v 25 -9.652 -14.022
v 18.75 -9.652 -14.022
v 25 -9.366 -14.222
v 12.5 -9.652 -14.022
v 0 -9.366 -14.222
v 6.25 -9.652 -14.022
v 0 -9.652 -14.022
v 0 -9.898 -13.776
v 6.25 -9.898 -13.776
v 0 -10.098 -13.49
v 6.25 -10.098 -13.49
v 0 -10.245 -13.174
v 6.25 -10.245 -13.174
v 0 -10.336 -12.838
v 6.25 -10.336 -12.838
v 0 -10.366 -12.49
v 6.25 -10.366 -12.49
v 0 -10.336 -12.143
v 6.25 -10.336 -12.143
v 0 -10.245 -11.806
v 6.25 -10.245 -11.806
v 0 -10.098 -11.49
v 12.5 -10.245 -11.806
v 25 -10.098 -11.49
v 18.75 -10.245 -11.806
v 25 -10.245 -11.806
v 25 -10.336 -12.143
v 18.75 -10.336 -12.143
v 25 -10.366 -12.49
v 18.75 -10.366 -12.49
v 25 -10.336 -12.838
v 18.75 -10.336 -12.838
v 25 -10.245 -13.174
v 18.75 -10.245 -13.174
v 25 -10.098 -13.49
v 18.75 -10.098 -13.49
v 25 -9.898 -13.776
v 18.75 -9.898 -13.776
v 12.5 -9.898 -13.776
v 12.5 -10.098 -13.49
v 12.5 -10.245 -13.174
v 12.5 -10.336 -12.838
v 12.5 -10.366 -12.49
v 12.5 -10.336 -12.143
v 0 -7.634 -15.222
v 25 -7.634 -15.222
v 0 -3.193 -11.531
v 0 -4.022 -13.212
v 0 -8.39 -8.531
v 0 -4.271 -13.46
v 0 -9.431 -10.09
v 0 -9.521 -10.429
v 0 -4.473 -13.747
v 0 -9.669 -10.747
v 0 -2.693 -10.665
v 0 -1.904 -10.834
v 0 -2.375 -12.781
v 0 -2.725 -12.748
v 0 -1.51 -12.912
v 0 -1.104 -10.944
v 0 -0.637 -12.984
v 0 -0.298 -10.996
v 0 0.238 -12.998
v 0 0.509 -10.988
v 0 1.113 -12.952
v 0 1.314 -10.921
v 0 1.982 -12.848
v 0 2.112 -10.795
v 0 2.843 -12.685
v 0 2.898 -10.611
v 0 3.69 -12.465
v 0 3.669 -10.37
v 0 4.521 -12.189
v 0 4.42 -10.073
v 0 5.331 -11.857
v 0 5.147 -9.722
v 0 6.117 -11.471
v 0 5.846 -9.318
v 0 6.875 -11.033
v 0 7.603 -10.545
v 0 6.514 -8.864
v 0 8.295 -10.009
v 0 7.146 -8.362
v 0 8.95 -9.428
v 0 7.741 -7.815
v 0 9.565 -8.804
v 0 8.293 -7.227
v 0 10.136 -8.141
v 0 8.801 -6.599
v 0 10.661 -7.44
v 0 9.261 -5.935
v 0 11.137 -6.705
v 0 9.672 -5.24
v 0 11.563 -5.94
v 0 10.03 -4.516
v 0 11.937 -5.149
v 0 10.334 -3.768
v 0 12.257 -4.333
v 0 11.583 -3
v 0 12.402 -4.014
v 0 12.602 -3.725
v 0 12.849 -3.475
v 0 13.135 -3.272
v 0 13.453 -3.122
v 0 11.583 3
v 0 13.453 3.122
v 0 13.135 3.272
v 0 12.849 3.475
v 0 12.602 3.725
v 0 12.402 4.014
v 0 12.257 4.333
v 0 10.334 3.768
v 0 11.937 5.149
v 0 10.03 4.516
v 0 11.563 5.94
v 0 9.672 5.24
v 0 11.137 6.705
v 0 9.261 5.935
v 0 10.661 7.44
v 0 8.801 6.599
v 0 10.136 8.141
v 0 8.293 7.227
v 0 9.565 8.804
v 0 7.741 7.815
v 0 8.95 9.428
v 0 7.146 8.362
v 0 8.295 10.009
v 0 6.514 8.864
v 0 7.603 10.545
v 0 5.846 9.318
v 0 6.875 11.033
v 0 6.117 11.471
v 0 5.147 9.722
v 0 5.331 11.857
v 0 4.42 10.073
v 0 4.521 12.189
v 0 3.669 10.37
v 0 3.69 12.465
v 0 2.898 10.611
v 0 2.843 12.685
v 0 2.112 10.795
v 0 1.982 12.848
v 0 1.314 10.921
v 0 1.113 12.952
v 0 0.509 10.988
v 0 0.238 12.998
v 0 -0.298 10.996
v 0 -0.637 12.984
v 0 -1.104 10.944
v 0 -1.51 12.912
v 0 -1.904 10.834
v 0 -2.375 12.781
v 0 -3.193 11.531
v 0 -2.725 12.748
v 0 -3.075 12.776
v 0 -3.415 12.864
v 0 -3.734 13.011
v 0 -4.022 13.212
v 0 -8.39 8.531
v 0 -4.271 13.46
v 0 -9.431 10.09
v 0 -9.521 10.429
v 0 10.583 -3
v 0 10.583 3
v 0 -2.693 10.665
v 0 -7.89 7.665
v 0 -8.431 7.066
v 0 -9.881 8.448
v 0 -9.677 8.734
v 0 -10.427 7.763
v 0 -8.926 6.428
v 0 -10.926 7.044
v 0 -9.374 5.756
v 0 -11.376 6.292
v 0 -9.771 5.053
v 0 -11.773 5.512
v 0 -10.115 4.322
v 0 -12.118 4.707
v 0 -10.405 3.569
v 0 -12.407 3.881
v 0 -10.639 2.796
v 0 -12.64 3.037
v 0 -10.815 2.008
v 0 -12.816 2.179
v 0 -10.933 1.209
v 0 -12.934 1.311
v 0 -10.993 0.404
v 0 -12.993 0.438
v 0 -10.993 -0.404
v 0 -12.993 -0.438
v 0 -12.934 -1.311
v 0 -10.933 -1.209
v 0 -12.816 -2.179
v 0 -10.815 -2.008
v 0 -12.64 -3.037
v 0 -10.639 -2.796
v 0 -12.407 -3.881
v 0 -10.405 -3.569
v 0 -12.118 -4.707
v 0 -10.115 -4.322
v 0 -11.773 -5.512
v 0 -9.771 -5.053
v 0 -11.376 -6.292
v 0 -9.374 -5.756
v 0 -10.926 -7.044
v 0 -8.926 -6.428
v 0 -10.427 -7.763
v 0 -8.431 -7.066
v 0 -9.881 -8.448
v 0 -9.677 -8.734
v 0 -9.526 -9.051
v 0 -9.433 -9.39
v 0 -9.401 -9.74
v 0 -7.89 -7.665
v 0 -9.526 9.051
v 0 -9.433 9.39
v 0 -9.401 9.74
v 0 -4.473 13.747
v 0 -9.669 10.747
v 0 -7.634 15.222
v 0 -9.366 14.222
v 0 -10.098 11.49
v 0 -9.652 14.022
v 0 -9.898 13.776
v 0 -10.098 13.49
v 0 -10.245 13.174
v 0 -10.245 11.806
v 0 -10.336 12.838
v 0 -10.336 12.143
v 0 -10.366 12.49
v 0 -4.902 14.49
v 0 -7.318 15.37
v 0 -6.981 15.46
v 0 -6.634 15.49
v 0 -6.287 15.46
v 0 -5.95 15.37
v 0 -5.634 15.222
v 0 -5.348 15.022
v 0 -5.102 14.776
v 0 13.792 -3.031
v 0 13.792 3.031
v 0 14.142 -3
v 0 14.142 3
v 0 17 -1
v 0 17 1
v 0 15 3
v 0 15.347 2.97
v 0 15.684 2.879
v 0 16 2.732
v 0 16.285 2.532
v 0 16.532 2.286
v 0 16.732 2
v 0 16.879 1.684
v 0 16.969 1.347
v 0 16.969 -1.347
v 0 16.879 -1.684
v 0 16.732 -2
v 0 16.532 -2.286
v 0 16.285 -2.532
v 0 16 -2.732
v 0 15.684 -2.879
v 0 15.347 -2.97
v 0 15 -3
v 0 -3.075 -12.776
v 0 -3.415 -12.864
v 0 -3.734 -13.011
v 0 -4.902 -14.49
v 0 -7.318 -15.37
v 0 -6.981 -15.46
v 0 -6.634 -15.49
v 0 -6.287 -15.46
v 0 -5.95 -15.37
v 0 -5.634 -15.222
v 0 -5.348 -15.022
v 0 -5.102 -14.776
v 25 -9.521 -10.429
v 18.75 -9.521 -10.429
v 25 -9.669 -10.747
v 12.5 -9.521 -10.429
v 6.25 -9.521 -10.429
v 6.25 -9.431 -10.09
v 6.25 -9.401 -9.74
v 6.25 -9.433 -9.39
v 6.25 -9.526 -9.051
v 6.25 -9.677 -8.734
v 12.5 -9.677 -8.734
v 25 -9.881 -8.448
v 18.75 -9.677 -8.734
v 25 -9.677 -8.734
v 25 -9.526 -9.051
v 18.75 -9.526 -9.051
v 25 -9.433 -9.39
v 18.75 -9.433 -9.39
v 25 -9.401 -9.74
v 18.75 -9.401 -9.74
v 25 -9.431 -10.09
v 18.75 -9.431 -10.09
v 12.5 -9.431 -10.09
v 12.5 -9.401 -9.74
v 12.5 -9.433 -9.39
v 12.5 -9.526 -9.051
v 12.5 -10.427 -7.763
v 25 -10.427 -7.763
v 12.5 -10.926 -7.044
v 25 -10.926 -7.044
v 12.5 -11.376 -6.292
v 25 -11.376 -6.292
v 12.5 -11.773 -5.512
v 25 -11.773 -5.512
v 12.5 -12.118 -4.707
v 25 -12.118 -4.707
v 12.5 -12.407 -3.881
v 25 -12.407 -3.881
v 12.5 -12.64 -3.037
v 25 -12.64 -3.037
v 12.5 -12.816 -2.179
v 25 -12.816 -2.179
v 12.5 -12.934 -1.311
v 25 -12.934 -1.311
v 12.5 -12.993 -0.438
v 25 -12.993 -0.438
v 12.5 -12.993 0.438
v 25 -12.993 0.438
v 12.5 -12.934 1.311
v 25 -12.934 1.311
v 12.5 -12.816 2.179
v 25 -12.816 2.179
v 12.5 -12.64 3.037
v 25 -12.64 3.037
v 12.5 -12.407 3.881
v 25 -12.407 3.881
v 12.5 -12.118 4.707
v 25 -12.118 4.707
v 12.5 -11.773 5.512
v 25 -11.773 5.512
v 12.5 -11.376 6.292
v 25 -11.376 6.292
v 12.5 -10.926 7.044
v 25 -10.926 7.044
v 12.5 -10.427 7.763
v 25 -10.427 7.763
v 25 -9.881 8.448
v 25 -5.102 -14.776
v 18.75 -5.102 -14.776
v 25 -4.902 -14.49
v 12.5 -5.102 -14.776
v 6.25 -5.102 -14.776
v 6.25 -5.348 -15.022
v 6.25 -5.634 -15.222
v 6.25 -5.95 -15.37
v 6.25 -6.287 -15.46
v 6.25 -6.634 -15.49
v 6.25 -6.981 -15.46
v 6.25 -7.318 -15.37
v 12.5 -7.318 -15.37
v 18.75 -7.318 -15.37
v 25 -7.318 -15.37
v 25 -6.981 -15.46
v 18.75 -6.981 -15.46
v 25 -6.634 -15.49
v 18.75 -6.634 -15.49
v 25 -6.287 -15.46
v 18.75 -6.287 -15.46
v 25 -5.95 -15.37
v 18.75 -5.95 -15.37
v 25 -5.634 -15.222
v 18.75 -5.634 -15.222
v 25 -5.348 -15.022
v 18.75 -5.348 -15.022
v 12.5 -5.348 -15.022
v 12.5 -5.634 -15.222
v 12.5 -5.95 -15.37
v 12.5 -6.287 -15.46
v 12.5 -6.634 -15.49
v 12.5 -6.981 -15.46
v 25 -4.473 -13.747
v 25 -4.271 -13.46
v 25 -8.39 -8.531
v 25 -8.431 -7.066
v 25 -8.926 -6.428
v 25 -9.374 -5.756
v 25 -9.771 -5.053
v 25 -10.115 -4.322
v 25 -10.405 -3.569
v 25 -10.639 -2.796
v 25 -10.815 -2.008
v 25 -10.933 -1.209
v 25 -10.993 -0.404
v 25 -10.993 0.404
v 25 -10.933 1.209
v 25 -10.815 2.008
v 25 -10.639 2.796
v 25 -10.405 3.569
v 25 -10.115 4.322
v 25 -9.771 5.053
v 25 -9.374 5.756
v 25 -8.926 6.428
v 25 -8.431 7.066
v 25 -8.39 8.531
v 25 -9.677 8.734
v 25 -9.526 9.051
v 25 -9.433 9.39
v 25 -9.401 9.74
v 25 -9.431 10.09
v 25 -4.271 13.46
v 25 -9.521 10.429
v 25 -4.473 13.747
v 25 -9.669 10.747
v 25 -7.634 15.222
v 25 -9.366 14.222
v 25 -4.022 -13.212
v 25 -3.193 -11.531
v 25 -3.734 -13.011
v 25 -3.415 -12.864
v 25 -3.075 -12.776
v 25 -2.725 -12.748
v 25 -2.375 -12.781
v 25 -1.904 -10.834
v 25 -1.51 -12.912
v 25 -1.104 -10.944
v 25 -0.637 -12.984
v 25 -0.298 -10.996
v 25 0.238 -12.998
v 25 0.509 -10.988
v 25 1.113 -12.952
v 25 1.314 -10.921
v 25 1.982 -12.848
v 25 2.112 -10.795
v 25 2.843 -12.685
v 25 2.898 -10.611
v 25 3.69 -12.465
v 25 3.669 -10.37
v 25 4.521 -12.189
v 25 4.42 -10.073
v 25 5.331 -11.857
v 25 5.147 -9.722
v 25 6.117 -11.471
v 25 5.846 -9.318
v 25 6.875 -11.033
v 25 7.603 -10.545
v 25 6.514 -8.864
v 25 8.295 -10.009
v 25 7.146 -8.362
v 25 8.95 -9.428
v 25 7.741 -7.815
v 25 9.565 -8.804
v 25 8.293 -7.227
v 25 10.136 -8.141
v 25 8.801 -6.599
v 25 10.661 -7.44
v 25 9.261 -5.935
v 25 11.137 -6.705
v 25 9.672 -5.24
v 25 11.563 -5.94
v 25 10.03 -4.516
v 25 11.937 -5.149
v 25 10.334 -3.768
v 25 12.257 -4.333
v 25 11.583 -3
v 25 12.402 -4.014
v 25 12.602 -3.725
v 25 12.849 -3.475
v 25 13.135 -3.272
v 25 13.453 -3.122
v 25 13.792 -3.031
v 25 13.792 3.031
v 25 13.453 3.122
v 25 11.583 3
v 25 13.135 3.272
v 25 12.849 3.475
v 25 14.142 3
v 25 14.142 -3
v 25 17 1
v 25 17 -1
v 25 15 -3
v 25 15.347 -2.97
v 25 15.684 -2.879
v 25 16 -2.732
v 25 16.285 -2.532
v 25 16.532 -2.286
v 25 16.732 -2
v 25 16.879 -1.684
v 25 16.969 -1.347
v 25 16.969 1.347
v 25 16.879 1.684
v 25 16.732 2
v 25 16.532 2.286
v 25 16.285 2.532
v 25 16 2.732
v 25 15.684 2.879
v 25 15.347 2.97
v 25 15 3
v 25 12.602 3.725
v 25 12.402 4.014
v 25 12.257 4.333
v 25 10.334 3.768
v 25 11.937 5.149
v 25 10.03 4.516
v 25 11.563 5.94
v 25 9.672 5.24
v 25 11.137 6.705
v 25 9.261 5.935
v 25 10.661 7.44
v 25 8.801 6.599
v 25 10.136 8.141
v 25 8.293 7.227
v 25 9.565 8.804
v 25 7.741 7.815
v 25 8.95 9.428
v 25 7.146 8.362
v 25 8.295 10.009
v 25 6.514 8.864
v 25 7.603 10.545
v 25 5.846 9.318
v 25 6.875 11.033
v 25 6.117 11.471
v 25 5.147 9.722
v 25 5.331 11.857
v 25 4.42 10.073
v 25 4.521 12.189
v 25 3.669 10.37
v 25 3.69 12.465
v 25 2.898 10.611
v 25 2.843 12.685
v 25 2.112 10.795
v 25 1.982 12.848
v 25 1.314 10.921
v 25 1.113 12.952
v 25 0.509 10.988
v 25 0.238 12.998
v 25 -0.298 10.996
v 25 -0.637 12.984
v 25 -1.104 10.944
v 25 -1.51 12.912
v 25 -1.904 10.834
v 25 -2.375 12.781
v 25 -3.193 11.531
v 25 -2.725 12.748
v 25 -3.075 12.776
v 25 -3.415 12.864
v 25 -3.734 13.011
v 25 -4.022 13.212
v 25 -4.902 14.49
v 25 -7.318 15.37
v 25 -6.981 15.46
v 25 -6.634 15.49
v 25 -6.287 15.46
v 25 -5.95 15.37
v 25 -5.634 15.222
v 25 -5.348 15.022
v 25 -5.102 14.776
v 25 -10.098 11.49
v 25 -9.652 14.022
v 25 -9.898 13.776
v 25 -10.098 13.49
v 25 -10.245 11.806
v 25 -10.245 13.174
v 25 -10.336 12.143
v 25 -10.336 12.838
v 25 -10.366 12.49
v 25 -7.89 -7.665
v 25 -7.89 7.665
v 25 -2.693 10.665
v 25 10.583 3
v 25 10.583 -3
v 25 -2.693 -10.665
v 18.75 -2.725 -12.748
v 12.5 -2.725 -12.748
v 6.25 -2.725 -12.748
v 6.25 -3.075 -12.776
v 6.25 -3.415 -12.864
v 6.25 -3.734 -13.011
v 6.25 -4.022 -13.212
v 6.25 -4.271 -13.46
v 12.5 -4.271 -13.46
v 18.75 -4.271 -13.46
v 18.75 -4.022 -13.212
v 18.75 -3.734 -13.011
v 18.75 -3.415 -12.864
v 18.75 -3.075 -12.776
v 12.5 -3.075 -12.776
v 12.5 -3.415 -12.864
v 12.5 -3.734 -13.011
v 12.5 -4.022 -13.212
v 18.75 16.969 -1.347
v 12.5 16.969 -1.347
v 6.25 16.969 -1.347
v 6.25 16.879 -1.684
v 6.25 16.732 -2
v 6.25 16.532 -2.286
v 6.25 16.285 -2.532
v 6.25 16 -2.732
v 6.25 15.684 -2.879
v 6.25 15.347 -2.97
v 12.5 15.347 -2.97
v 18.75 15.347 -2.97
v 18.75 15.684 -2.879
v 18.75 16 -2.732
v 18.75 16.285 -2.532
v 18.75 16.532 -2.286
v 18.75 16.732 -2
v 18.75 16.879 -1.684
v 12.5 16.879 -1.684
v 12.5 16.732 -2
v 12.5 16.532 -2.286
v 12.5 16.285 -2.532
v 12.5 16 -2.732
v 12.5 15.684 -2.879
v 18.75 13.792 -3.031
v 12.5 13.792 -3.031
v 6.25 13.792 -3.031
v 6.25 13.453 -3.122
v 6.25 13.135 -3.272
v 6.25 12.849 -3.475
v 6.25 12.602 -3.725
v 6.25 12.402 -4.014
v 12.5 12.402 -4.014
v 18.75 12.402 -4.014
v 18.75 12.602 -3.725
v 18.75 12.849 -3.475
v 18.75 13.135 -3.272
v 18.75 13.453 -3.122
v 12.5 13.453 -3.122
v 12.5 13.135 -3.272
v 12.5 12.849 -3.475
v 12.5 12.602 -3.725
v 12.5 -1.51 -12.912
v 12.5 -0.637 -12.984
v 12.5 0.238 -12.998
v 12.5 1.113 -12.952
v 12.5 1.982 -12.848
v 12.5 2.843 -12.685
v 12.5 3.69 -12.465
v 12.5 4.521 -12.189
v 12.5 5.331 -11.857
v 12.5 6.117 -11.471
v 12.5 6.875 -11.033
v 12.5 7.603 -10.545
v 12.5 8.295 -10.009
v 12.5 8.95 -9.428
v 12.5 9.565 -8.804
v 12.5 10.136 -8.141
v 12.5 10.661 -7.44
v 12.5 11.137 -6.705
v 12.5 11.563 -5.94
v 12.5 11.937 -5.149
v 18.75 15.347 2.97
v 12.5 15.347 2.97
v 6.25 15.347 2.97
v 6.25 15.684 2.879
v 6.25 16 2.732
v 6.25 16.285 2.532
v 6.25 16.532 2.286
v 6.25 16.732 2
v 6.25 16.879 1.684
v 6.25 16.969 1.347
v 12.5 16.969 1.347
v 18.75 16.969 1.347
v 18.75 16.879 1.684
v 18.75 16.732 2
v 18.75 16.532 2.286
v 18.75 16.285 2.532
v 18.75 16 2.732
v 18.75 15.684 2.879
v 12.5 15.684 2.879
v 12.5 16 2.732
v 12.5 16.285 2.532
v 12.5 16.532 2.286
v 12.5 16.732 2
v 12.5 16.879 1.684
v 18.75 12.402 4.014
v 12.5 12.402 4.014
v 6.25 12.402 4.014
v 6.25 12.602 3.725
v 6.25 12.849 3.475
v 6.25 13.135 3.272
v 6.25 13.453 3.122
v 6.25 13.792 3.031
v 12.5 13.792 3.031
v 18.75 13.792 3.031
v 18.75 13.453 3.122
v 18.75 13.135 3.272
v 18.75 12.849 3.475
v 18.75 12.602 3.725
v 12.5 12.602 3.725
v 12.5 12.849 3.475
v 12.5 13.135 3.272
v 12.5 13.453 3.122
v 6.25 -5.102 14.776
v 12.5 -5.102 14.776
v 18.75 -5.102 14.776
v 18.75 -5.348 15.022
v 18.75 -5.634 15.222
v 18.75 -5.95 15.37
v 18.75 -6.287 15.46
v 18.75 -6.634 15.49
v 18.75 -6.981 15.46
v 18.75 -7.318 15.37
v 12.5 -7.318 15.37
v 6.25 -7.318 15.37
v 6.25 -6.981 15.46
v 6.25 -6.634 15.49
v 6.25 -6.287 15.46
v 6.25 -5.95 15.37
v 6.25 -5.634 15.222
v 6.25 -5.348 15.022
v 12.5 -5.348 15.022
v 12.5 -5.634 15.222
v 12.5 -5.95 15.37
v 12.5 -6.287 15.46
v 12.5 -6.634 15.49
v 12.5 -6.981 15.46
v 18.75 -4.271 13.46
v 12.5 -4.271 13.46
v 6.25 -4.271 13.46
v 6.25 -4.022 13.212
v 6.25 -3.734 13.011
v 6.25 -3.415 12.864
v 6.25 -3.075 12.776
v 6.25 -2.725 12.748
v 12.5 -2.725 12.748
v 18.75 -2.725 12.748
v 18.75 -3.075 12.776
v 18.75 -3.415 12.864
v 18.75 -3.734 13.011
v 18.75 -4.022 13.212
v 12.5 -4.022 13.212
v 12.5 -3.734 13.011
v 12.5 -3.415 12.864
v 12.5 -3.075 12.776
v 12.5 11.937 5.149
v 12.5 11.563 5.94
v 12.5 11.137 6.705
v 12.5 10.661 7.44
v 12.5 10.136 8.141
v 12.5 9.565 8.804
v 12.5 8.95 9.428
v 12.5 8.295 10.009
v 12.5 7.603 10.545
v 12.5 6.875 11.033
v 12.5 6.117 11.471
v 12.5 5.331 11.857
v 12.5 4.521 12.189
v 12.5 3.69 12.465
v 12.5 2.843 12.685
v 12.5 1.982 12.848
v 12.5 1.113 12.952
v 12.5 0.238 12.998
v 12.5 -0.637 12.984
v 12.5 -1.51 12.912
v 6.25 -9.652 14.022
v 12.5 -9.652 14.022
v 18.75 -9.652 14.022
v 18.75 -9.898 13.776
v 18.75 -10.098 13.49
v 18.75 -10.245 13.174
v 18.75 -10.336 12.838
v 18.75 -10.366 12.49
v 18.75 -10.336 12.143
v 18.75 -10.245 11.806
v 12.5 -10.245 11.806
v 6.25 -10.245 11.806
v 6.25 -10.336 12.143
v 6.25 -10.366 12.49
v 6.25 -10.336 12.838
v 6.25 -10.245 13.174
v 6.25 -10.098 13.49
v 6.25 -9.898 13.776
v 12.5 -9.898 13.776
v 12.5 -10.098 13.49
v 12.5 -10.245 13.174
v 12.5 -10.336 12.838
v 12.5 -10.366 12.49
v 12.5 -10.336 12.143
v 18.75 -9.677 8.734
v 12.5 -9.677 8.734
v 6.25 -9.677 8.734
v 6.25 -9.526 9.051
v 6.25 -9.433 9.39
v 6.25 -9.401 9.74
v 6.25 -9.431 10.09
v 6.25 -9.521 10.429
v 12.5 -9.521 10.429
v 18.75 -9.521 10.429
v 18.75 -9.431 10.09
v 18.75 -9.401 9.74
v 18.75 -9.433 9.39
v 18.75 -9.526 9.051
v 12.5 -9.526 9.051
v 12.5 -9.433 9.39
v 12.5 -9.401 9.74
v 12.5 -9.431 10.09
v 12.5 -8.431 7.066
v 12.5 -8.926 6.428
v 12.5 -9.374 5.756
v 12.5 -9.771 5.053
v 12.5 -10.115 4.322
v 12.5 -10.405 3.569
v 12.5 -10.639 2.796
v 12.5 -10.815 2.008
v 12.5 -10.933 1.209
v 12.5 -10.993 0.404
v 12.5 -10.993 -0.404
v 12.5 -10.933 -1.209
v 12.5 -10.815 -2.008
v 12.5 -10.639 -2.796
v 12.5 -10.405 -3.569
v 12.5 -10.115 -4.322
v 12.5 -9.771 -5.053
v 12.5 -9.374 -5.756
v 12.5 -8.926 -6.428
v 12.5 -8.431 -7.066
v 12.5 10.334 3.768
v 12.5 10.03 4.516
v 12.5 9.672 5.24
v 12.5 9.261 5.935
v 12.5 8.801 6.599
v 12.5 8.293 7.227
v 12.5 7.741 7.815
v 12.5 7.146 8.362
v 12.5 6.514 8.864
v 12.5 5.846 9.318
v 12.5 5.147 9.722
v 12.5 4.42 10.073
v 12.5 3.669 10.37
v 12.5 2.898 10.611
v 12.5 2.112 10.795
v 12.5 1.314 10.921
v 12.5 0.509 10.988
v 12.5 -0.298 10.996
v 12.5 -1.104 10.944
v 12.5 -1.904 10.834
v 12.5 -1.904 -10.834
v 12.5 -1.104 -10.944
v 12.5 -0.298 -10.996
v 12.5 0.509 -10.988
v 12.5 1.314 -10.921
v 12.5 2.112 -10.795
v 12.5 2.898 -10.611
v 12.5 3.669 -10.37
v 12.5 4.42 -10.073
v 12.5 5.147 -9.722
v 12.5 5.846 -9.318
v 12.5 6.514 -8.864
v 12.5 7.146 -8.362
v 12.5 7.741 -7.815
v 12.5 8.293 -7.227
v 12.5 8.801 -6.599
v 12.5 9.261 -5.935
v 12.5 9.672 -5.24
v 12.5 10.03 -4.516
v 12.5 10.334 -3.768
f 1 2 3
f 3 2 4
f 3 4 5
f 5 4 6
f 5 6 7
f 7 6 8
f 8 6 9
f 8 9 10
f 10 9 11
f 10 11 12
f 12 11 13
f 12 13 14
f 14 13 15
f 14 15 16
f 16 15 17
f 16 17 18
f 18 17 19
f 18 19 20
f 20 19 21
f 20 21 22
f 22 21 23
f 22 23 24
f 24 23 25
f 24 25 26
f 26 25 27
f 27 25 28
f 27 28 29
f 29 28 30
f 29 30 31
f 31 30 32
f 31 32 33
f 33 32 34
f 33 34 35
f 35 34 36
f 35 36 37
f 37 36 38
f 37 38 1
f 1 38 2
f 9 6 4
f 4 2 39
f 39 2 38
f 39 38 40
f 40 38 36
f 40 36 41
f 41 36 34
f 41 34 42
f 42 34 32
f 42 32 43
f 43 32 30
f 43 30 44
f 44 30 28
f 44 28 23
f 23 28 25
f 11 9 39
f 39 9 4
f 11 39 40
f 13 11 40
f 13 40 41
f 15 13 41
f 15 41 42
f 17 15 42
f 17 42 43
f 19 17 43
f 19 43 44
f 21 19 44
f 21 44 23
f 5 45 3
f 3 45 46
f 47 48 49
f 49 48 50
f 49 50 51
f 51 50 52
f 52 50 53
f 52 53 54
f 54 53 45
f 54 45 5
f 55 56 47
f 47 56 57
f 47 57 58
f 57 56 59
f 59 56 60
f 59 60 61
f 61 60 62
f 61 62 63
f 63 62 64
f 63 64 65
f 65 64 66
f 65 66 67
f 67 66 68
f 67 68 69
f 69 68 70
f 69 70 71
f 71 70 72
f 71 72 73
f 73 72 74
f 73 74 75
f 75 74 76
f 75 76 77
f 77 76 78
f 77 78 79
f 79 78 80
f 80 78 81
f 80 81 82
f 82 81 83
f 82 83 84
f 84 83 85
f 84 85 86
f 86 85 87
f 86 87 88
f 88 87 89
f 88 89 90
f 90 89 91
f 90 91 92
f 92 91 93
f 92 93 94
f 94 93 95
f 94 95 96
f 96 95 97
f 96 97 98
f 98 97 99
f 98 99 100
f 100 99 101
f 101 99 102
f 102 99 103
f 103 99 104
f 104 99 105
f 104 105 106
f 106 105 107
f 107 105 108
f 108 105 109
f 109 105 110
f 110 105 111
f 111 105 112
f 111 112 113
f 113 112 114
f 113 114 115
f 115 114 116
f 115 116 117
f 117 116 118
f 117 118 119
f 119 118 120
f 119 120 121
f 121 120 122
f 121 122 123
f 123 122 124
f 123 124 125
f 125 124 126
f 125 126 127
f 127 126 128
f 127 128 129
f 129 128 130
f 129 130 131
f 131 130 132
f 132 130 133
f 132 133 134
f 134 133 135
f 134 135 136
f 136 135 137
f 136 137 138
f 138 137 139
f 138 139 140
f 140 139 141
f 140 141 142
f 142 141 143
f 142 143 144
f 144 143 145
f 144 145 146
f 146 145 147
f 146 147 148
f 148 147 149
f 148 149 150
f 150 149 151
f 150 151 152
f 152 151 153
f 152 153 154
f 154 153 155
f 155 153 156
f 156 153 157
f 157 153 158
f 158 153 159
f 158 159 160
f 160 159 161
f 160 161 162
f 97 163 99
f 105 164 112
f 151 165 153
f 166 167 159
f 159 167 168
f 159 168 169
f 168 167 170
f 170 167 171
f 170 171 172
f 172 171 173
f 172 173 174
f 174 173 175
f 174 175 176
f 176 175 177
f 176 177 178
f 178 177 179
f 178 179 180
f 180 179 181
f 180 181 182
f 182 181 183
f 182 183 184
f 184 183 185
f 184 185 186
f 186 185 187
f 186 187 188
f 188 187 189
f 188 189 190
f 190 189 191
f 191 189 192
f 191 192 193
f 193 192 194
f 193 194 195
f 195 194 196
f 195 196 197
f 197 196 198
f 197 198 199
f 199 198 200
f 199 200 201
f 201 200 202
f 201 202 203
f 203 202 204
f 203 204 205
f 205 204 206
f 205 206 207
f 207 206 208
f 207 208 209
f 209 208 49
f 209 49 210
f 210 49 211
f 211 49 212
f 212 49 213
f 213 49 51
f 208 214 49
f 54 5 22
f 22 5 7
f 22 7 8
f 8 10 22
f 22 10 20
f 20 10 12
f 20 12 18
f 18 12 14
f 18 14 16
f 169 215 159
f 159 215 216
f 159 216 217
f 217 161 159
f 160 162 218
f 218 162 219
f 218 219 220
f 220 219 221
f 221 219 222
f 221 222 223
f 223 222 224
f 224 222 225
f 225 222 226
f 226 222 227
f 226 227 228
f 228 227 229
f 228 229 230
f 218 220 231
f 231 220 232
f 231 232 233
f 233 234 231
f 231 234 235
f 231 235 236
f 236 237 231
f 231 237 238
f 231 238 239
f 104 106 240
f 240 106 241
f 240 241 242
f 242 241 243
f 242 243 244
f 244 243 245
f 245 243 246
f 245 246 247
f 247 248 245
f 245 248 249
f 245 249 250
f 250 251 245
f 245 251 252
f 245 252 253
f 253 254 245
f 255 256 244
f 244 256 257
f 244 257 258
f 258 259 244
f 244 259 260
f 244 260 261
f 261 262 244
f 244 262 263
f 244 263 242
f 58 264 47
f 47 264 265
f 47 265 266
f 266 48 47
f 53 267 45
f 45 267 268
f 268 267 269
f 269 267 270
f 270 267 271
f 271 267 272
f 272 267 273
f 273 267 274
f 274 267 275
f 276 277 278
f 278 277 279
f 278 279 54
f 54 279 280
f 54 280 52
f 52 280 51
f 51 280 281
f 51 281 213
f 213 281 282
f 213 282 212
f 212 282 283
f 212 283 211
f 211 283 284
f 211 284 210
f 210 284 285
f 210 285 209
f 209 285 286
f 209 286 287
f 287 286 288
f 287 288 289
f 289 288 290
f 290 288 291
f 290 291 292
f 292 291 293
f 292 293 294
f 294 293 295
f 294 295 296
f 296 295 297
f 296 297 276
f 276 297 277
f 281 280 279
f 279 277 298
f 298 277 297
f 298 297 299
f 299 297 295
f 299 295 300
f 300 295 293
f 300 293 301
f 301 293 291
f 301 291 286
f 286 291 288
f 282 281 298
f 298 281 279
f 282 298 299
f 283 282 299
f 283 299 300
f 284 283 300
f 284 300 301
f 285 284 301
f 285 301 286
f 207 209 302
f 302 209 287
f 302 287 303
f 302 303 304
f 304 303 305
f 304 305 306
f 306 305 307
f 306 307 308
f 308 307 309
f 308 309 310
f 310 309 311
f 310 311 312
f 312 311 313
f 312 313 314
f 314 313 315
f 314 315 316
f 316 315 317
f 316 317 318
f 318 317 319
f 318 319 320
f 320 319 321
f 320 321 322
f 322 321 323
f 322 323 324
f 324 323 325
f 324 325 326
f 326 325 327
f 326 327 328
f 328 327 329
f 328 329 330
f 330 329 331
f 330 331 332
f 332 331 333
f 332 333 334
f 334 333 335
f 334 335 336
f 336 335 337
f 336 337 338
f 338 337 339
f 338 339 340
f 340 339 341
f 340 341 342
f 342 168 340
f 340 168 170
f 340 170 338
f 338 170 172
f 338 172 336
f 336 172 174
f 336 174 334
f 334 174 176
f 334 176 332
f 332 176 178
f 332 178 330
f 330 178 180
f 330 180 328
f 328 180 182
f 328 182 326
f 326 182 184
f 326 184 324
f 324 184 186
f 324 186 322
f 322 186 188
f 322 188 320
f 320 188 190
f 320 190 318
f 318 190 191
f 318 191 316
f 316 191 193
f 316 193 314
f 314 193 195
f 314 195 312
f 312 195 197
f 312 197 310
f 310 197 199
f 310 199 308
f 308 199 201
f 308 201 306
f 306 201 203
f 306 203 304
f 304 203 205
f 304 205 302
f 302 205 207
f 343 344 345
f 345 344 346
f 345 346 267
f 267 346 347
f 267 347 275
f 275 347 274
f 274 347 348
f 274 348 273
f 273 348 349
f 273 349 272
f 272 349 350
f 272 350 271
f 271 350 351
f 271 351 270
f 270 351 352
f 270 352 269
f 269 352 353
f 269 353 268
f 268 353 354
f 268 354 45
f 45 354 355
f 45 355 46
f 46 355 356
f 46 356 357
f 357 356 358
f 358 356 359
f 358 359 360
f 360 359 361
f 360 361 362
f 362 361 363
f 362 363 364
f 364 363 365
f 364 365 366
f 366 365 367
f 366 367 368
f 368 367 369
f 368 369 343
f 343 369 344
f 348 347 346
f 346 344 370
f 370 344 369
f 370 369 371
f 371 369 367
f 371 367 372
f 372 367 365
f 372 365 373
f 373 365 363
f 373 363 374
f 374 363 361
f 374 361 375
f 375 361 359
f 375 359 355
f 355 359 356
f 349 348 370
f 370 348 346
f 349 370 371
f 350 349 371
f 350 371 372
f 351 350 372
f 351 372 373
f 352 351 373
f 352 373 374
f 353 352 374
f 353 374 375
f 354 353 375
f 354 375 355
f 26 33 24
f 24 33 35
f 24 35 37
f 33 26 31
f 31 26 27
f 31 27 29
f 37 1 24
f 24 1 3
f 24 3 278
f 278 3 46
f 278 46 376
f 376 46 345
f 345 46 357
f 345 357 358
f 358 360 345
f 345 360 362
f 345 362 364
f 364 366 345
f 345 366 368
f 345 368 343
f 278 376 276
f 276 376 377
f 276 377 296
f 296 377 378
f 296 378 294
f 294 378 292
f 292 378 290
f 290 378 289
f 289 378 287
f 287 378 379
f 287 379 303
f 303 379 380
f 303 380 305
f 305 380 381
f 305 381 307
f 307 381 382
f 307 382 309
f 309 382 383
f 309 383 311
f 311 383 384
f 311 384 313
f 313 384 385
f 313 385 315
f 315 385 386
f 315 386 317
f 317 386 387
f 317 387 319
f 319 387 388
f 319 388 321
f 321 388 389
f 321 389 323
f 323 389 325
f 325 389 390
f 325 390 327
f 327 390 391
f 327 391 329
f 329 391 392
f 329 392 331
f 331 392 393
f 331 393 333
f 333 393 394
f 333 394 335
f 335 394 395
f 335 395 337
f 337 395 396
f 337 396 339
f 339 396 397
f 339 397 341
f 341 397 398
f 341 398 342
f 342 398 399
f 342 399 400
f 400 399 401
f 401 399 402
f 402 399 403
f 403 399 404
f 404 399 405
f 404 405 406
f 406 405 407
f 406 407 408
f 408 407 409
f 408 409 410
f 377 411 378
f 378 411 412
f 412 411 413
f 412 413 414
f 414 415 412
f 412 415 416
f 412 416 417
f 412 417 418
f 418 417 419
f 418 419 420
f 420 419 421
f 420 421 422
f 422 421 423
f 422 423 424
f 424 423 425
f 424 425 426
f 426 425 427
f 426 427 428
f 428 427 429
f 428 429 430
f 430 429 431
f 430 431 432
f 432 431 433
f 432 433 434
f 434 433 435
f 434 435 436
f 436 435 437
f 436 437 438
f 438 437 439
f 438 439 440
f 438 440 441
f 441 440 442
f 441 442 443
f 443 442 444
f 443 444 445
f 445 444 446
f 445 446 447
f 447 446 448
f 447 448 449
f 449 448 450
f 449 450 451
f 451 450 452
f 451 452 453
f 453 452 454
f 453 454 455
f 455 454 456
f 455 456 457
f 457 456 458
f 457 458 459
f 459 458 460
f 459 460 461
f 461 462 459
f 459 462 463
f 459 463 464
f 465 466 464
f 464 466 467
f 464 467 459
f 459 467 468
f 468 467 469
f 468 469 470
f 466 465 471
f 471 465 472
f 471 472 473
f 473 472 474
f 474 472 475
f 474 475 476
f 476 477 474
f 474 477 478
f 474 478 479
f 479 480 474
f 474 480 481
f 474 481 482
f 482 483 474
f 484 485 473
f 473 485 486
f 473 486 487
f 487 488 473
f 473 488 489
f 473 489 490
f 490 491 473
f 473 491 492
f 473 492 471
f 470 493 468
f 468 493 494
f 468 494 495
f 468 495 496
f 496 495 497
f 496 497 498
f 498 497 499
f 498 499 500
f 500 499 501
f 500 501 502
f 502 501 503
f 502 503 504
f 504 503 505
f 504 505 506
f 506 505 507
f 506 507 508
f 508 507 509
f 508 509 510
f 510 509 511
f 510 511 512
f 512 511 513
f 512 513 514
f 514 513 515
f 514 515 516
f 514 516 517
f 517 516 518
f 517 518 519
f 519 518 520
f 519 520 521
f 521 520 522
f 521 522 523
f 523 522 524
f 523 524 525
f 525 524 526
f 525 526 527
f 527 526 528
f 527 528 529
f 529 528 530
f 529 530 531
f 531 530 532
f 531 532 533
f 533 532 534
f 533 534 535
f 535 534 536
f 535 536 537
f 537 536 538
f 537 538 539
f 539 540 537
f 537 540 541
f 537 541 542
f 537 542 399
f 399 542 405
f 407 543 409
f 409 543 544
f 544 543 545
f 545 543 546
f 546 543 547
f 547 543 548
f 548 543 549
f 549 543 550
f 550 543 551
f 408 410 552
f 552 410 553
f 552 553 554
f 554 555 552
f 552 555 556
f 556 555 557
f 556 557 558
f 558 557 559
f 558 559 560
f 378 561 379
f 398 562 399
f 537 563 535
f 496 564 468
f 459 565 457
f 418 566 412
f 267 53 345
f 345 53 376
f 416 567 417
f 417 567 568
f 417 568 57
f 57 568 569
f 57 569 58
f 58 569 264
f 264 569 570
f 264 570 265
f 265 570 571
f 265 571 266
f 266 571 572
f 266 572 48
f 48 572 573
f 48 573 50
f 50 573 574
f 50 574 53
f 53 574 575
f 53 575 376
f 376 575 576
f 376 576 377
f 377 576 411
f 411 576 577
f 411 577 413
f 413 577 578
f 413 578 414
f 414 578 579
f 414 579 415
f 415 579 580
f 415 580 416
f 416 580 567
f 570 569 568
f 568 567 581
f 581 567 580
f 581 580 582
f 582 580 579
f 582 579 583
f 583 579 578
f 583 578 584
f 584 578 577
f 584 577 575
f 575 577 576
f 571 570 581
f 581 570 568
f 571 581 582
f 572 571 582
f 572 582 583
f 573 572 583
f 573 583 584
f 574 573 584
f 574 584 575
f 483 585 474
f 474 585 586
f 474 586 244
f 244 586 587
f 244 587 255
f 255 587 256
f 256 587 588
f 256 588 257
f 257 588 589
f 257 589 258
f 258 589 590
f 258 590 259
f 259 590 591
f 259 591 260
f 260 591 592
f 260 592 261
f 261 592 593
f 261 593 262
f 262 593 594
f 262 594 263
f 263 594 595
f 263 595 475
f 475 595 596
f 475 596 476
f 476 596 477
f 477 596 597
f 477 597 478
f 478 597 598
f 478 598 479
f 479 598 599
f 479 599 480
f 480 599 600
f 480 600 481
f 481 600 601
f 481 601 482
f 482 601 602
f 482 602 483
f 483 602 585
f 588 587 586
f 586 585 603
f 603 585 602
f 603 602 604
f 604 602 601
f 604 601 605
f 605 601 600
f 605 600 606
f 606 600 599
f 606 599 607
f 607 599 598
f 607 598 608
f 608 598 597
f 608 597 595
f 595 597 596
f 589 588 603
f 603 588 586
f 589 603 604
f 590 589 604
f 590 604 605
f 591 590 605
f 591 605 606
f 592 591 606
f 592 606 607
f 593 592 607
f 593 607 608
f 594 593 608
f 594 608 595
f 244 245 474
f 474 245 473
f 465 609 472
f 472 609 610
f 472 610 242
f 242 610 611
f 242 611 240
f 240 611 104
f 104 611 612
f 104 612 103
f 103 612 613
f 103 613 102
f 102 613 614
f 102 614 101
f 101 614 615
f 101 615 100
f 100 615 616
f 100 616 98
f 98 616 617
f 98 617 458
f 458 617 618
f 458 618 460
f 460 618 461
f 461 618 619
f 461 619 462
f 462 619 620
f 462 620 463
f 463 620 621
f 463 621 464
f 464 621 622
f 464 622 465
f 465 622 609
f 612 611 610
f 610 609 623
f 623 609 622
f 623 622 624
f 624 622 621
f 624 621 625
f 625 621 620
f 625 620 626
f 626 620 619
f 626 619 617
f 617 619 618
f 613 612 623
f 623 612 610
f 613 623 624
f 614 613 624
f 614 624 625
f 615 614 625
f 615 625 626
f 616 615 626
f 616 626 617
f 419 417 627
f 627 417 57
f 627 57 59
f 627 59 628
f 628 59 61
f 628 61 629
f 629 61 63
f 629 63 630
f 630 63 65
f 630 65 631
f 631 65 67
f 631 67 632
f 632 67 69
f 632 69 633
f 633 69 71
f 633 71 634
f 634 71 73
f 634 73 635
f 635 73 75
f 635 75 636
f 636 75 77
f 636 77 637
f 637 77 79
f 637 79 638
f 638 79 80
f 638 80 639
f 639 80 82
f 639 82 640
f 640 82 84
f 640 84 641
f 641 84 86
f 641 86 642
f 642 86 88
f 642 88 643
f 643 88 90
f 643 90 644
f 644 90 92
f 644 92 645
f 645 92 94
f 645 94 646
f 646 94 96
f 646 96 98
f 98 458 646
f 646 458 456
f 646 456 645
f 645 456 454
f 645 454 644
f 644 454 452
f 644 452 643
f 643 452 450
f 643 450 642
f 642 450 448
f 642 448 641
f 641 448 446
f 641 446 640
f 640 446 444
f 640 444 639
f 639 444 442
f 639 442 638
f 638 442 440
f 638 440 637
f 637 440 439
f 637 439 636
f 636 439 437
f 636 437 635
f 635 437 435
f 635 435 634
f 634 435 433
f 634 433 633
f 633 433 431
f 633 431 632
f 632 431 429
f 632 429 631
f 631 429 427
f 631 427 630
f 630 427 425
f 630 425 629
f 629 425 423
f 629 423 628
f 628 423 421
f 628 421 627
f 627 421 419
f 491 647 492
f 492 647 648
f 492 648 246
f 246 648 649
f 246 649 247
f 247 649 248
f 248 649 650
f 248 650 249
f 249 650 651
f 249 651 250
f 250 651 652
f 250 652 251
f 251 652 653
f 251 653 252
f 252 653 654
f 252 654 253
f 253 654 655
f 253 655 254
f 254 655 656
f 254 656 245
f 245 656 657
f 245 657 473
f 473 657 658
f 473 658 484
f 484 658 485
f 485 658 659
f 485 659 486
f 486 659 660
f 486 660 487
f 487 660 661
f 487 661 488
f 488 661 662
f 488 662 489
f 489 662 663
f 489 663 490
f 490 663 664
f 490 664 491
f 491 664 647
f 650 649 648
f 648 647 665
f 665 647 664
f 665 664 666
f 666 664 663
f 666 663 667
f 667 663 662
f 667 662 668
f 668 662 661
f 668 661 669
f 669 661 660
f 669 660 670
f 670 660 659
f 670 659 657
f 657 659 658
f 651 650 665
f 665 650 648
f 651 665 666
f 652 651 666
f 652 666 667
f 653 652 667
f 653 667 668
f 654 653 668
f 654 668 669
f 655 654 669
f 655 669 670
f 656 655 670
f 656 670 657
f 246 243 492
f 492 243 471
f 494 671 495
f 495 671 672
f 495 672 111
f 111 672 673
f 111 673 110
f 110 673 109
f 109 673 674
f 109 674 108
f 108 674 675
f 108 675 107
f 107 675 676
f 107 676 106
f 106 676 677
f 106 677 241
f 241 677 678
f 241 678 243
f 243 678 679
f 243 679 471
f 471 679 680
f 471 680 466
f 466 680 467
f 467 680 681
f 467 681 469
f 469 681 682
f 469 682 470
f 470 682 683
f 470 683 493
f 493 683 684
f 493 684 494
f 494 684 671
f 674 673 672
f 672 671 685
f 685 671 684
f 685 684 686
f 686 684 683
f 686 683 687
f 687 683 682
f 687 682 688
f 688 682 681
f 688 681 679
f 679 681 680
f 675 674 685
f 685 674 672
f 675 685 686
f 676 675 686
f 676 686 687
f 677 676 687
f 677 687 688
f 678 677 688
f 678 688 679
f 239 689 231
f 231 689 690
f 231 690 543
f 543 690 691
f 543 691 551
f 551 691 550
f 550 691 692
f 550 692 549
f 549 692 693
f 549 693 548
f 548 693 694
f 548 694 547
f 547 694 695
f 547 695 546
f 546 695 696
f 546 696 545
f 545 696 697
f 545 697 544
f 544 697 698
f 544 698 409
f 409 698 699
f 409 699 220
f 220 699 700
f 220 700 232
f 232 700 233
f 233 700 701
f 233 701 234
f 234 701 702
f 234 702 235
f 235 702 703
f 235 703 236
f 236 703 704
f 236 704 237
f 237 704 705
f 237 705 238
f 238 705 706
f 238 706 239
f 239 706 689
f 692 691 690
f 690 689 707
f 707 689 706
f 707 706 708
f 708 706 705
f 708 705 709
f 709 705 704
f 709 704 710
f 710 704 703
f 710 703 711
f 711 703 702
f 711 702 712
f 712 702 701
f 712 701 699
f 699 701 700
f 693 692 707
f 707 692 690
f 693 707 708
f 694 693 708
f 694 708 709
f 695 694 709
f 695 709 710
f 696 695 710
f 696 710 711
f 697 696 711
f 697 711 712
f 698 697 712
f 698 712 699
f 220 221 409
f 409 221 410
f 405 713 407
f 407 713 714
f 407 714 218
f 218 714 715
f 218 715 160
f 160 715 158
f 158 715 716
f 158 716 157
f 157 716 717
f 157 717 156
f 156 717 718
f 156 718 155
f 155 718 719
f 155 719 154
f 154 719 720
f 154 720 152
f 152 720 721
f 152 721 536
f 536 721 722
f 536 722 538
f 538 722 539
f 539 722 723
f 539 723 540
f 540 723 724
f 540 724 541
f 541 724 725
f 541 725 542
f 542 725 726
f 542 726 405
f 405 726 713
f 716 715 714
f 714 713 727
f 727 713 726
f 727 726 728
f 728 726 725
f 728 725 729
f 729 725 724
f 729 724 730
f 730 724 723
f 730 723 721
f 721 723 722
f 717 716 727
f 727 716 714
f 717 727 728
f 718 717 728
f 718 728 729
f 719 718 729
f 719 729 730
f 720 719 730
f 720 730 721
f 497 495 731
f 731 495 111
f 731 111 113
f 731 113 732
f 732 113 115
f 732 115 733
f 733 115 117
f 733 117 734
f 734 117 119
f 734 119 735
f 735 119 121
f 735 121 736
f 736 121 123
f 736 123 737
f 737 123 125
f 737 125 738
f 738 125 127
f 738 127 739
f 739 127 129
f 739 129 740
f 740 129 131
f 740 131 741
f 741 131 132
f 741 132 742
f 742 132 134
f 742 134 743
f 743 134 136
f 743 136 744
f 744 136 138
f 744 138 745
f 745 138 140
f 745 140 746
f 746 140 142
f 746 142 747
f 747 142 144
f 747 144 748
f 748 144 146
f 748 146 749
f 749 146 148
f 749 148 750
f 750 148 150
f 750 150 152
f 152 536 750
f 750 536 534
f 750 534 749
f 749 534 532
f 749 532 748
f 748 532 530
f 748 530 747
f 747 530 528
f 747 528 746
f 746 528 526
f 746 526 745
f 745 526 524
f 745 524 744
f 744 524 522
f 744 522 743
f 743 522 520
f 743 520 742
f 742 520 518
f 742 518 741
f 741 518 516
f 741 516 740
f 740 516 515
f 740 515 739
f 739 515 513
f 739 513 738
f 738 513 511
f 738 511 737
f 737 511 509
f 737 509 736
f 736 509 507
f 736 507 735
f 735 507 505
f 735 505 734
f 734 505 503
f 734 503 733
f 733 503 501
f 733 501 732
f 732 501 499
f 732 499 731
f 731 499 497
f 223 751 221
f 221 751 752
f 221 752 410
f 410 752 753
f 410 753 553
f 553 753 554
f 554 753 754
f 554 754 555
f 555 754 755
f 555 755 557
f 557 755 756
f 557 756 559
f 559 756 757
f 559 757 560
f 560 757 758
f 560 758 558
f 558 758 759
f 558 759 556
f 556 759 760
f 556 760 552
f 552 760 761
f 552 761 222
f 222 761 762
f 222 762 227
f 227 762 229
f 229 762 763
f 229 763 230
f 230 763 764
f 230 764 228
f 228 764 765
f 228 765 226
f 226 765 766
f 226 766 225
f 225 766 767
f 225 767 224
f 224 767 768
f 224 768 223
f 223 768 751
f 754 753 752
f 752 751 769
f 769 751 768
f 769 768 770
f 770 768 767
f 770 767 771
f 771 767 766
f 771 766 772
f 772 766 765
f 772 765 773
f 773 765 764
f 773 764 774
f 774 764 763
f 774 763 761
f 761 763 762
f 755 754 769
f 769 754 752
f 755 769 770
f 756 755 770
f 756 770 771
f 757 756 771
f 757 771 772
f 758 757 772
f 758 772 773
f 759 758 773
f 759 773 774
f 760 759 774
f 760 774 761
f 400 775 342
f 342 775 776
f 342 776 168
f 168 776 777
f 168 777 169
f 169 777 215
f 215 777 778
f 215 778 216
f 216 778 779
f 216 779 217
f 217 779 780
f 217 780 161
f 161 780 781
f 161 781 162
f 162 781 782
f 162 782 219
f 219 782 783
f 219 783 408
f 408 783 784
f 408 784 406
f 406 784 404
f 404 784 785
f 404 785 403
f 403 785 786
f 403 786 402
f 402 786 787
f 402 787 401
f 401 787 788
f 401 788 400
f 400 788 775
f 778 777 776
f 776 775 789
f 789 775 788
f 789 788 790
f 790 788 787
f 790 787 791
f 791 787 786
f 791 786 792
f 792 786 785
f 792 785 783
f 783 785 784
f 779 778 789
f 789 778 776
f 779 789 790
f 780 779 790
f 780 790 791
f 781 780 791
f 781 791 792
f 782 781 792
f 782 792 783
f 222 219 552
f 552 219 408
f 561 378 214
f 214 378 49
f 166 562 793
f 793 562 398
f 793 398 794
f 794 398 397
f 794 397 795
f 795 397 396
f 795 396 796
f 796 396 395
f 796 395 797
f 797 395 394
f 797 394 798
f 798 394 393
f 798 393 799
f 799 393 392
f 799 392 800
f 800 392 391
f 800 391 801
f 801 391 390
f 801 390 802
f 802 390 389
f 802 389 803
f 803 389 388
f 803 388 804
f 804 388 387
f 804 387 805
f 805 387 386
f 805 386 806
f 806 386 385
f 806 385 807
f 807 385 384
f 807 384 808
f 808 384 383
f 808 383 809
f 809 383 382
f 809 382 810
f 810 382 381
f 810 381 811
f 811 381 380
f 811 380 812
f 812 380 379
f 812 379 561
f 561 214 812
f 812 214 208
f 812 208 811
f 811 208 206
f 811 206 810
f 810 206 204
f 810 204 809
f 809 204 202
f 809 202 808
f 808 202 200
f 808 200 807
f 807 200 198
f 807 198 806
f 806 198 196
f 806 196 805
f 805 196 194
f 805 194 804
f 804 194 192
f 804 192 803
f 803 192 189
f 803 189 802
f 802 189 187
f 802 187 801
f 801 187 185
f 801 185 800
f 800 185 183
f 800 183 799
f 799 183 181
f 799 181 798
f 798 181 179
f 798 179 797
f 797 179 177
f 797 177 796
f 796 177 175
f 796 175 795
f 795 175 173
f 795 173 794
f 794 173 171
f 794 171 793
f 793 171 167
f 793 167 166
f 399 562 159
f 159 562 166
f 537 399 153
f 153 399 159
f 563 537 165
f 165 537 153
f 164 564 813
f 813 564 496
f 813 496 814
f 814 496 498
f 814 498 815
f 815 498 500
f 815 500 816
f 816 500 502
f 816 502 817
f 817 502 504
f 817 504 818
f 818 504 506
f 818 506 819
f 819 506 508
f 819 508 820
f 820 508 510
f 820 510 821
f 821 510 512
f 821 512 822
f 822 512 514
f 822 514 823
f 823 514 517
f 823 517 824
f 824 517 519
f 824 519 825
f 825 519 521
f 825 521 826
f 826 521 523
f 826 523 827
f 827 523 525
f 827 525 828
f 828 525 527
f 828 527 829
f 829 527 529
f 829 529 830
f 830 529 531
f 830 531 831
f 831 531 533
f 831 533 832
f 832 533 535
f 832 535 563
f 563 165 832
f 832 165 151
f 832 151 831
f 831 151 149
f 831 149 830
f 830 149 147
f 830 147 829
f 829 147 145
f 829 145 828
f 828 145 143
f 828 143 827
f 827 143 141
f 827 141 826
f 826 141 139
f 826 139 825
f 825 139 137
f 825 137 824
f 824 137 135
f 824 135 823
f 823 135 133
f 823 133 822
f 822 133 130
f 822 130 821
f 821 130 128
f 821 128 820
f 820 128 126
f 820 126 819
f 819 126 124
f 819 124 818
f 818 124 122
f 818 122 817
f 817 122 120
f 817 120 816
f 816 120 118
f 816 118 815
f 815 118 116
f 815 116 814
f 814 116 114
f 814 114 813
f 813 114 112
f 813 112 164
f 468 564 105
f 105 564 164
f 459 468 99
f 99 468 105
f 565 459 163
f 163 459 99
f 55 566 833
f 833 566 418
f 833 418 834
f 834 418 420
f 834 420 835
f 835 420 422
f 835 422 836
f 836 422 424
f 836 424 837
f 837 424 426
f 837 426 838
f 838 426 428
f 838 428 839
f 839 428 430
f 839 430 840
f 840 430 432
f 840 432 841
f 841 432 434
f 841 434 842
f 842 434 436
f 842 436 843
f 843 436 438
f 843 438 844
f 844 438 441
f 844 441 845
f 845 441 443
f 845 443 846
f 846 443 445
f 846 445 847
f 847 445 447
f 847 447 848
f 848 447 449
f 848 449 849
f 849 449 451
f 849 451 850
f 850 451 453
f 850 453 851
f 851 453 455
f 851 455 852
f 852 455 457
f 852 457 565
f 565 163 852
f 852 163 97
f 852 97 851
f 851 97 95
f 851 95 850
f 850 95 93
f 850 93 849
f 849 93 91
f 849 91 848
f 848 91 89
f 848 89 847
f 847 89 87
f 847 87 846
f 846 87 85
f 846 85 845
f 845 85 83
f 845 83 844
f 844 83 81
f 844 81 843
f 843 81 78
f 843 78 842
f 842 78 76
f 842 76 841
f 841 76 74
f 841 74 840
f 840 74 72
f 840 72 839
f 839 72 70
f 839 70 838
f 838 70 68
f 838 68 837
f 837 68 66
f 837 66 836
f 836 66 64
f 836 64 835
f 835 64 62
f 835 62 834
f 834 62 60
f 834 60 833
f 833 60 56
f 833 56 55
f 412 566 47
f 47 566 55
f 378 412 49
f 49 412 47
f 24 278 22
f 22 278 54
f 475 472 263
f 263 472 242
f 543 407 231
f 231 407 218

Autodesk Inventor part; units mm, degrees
ref_plane "YZ Plane" through (0, 0, 0) normal (1, 0, 0) x (0, 1, 0)
ref_plane "XZ Plane" through (0, 0, 0) normal (0, 1, 0) x (-1, 0, 0)
ref_plane "XY Plane" through (0, 0, 0) normal (0, 0, 1) x (1, 0, 0)
sketch "Sketch1" plane through (0, 0, 0) normal (1, 0, 0) x (0, 1, 0)
  point P0 (0, 0)
sketch "Sketch2" plane through (0, 0, 0) normal (1, 0, 0) x (0, 1, 0)
  circle A0 centre (0, 0) radius 11
  circle A1 centre (0, 0) radius 13
  line L0 (0, 0) -> (13, 0)
  line L1 (0, 0) -> (-6.5, -11.2583)
  line L2 (0, 0) -> (13, 0) construction
  line L3 (0, 0) -> (-6.5, 11.2583)
  line L4 (0, 0) -> (13, 0) construction
  line L5 (11, 0) -> (11, -3)
  line L6 (11, 0) -> (11, 3)
  line L7 (-5.5, 9.5263) -> (-8.0981, 8.0263)
  line L8 (-5.5, 9.5263) -> (-2.9019, 11.0263)
  line L9 (-5.5, -9.5263) -> (-2.9019, -11.0263)
  line L10 (-5.5, -9.5263) -> (-8.0981, -8.0263)
  line L11 (11, 3) -> (15, 3)
  line L12 (15, 3) -> (11, 3)
  line L13 (11, 3) -> (11, -3)
  line L14 (11, -3) -> (15, -3)
  line L15 (15, -3) -> (15, 3)
  line L16 (-2.9019, 11.0263) -> (-4.9019, 14.4904)
  line L17 (-8.0981, 8.0263) -> (-10.0981, 11.4904)
  line L18 (-10.0981, 11.4904) -> (-4.9019, 14.4904)
  line L19 (-2.9019, -11.0263) -> (-4.9019, -14.4904)
  line L20 (-8.0981, -8.0263) -> (-10.0981, -11.4904)
  line L21 (-4.9019, -14.4904) -> (-10.0981, -11.4904)
  line L22 (-2.9019, 11.0263) -> (-2.6934, 10.6652)
  line L23 (-8.0981, 8.0263) -> (-7.8896, 7.6652)
  line L24 (-2.6934, 10.6652) -> (-3.1934, 11.5312)
  line L25 (-3.1934, 11.5312) -> (-8.3896, 8.5312)
  line L26 (-2.9019, -11.0263) -> (-2.6934, -10.6652)
  line L27 (-8.0981, -8.0263) -> (-7.8896, -7.6652)
  line L28 (-2.6934, -10.6652) -> (-3.1934, -11.5312)
  line L29 (-3.1934, -11.5312) -> (-8.3896, -8.5312)
  line L30 (11, -3) -> (10.583, -3)
  line L31 (11, 3) -> (10.583, 3)
  line L32 (10.583, -3) -> (11.583, -3)
  line L33 (11.583, -3) -> (11.583, 3)
  point P0 (-8.9226, 9.4545)
  point P1 (-8.9226, -9.4545)
  point P2 (-3.7265, -12.4545)
  point P3 (12.6491, -3)
  point P4 (12.6491, 3)
  point P5 (-3.7265, 12.4545)
  dimension "d0" = 22
  dimension "d1" = 26
  dimension "d2" = 120
  dimension "d3" = 120
  dimension "d4" = 3
  dimension "d5" = 3
  dimension "d6" = 3
  dimension "d7" = 3
  dimension "d8" = 3
  dimension "d9" = 3
  dimension "d10" = 4
  dimension "d11" = 4
  dimension "d12" = 4
  dimension "d13" = 4
  dimension "d14" = 4
  dimension "d15" = 1
  dimension "d16" = 1
  dimension "d17" = 1
extrude "Extrusion1" add sketch "Sketch2" along normal blind 25 contours A0 L22 L16 A1 L11 L31 | L30 L14 A1 L19 L26 A0 | L33 L11 A1 L0 | L0 A1 L14 L33 | A1 L11 L15 L14 | L27 L20 A1 L17 L23 A0 | L29 L19 A1 L1 | L1 A1 L20 L29 | L25 L17 A1 L3 | L3 A1 L16 L25 | A1 L19 L21 L20 | A1 L17 L18 L16
sketch "Sketch3" plane through (25, 0, 0) normal (1, 0, 0) x (0, 0, -1)
  line L0 (3, 15) -> (-3, 15) projected
  line L1 (-3, 15) -> (3, 15)
  line L2 (3, 15) -> (3, 16.9996)
  line L3 (3, 16.9996) -> (-3, 16.9996)
  line L4 (-3, 16.9996) -> (-3, 15)
  line L5 (9.4545, -8.9226) -> (11.4904, -10.0981) projected
  line L6 (11.4904, -10.0981) -> (13.2224, -11.0981)
  line L7 (13.2224, -11.0981) -> (16.2224, -5.9019)
  line L8 (16.2224, -5.9019) -> (14.4904, -4.9019)
  line L9 (-11.4904, -10.0981) -> (-9.4545, -8.9226) projected
  line L10 (-11.4904, -10.0981) -> (-13.2224, -11.0981)
  line L11 (-13.2224, -11.0981) -> (-16.2224, -5.9019)
  line L12 (-14.4904, -4.9019) -> (-11.4904, -10.0981) projected
  line L13 (-16.2224, -5.9019) -> (-14.4904, -4.9019)
  point P0 (0, 0)
  dimension "d20" = 2
  dimension "d21" = 6
  dimension "d22" = 2
  dimension "d23" = 6
extrude "Extrusion2" add sketch "Sketch3" against normal blind 25 contours L0 L4 L3 L2
extrude "Extrusion3" add sketch "Sketch3" against normal blind 25 contours L10 L11 L13 L12
sketch "Sketch4" plane through (0, 0, 0) normal (-1, 0, 0) x (0, 0, 1)
  line L0 (-11.4904, -10.0981) -> (-14.4904, -4.9019) projected
  line L1 (-11.4904, -10.0981) -> (-14.4904, -4.9019)
  line L2 (-14.4904, -4.9019) -> (-16.2224, -5.9019)
  line L3 (-16.2224, -5.9019) -> (-13.2224, -11.0981)
  line L4 (-13.2224, -11.0981) -> (-11.4904, -10.0981)
  point P0 (0, 0)
  dimension "d28" = 2
  dimension "d29" = 6
extrude "Extrusion4" add sketch "Sketch4" against normal blind 25
fillet "Fillet1" radius 2 12 edges at (12.5, -8.9226, -9.4545) (12.5, -11.0981, -13.2224) (12.5, -3.7265, -12.4545) (12.5, -5.9019, -16.2224) (12.5, 12.6491, -3) (12.5, 16.9996, -3) (12.5, 12.6491, 3) (12.5, 16.9996, 3) (12.5, -3.7265, 12.4545) (12.5, -5.9019, 16.2224) (12.5, -8.9226, 9.4545) (12.5, -11.0981, 13.2224)
properties part number "Part1_3DPrint"
